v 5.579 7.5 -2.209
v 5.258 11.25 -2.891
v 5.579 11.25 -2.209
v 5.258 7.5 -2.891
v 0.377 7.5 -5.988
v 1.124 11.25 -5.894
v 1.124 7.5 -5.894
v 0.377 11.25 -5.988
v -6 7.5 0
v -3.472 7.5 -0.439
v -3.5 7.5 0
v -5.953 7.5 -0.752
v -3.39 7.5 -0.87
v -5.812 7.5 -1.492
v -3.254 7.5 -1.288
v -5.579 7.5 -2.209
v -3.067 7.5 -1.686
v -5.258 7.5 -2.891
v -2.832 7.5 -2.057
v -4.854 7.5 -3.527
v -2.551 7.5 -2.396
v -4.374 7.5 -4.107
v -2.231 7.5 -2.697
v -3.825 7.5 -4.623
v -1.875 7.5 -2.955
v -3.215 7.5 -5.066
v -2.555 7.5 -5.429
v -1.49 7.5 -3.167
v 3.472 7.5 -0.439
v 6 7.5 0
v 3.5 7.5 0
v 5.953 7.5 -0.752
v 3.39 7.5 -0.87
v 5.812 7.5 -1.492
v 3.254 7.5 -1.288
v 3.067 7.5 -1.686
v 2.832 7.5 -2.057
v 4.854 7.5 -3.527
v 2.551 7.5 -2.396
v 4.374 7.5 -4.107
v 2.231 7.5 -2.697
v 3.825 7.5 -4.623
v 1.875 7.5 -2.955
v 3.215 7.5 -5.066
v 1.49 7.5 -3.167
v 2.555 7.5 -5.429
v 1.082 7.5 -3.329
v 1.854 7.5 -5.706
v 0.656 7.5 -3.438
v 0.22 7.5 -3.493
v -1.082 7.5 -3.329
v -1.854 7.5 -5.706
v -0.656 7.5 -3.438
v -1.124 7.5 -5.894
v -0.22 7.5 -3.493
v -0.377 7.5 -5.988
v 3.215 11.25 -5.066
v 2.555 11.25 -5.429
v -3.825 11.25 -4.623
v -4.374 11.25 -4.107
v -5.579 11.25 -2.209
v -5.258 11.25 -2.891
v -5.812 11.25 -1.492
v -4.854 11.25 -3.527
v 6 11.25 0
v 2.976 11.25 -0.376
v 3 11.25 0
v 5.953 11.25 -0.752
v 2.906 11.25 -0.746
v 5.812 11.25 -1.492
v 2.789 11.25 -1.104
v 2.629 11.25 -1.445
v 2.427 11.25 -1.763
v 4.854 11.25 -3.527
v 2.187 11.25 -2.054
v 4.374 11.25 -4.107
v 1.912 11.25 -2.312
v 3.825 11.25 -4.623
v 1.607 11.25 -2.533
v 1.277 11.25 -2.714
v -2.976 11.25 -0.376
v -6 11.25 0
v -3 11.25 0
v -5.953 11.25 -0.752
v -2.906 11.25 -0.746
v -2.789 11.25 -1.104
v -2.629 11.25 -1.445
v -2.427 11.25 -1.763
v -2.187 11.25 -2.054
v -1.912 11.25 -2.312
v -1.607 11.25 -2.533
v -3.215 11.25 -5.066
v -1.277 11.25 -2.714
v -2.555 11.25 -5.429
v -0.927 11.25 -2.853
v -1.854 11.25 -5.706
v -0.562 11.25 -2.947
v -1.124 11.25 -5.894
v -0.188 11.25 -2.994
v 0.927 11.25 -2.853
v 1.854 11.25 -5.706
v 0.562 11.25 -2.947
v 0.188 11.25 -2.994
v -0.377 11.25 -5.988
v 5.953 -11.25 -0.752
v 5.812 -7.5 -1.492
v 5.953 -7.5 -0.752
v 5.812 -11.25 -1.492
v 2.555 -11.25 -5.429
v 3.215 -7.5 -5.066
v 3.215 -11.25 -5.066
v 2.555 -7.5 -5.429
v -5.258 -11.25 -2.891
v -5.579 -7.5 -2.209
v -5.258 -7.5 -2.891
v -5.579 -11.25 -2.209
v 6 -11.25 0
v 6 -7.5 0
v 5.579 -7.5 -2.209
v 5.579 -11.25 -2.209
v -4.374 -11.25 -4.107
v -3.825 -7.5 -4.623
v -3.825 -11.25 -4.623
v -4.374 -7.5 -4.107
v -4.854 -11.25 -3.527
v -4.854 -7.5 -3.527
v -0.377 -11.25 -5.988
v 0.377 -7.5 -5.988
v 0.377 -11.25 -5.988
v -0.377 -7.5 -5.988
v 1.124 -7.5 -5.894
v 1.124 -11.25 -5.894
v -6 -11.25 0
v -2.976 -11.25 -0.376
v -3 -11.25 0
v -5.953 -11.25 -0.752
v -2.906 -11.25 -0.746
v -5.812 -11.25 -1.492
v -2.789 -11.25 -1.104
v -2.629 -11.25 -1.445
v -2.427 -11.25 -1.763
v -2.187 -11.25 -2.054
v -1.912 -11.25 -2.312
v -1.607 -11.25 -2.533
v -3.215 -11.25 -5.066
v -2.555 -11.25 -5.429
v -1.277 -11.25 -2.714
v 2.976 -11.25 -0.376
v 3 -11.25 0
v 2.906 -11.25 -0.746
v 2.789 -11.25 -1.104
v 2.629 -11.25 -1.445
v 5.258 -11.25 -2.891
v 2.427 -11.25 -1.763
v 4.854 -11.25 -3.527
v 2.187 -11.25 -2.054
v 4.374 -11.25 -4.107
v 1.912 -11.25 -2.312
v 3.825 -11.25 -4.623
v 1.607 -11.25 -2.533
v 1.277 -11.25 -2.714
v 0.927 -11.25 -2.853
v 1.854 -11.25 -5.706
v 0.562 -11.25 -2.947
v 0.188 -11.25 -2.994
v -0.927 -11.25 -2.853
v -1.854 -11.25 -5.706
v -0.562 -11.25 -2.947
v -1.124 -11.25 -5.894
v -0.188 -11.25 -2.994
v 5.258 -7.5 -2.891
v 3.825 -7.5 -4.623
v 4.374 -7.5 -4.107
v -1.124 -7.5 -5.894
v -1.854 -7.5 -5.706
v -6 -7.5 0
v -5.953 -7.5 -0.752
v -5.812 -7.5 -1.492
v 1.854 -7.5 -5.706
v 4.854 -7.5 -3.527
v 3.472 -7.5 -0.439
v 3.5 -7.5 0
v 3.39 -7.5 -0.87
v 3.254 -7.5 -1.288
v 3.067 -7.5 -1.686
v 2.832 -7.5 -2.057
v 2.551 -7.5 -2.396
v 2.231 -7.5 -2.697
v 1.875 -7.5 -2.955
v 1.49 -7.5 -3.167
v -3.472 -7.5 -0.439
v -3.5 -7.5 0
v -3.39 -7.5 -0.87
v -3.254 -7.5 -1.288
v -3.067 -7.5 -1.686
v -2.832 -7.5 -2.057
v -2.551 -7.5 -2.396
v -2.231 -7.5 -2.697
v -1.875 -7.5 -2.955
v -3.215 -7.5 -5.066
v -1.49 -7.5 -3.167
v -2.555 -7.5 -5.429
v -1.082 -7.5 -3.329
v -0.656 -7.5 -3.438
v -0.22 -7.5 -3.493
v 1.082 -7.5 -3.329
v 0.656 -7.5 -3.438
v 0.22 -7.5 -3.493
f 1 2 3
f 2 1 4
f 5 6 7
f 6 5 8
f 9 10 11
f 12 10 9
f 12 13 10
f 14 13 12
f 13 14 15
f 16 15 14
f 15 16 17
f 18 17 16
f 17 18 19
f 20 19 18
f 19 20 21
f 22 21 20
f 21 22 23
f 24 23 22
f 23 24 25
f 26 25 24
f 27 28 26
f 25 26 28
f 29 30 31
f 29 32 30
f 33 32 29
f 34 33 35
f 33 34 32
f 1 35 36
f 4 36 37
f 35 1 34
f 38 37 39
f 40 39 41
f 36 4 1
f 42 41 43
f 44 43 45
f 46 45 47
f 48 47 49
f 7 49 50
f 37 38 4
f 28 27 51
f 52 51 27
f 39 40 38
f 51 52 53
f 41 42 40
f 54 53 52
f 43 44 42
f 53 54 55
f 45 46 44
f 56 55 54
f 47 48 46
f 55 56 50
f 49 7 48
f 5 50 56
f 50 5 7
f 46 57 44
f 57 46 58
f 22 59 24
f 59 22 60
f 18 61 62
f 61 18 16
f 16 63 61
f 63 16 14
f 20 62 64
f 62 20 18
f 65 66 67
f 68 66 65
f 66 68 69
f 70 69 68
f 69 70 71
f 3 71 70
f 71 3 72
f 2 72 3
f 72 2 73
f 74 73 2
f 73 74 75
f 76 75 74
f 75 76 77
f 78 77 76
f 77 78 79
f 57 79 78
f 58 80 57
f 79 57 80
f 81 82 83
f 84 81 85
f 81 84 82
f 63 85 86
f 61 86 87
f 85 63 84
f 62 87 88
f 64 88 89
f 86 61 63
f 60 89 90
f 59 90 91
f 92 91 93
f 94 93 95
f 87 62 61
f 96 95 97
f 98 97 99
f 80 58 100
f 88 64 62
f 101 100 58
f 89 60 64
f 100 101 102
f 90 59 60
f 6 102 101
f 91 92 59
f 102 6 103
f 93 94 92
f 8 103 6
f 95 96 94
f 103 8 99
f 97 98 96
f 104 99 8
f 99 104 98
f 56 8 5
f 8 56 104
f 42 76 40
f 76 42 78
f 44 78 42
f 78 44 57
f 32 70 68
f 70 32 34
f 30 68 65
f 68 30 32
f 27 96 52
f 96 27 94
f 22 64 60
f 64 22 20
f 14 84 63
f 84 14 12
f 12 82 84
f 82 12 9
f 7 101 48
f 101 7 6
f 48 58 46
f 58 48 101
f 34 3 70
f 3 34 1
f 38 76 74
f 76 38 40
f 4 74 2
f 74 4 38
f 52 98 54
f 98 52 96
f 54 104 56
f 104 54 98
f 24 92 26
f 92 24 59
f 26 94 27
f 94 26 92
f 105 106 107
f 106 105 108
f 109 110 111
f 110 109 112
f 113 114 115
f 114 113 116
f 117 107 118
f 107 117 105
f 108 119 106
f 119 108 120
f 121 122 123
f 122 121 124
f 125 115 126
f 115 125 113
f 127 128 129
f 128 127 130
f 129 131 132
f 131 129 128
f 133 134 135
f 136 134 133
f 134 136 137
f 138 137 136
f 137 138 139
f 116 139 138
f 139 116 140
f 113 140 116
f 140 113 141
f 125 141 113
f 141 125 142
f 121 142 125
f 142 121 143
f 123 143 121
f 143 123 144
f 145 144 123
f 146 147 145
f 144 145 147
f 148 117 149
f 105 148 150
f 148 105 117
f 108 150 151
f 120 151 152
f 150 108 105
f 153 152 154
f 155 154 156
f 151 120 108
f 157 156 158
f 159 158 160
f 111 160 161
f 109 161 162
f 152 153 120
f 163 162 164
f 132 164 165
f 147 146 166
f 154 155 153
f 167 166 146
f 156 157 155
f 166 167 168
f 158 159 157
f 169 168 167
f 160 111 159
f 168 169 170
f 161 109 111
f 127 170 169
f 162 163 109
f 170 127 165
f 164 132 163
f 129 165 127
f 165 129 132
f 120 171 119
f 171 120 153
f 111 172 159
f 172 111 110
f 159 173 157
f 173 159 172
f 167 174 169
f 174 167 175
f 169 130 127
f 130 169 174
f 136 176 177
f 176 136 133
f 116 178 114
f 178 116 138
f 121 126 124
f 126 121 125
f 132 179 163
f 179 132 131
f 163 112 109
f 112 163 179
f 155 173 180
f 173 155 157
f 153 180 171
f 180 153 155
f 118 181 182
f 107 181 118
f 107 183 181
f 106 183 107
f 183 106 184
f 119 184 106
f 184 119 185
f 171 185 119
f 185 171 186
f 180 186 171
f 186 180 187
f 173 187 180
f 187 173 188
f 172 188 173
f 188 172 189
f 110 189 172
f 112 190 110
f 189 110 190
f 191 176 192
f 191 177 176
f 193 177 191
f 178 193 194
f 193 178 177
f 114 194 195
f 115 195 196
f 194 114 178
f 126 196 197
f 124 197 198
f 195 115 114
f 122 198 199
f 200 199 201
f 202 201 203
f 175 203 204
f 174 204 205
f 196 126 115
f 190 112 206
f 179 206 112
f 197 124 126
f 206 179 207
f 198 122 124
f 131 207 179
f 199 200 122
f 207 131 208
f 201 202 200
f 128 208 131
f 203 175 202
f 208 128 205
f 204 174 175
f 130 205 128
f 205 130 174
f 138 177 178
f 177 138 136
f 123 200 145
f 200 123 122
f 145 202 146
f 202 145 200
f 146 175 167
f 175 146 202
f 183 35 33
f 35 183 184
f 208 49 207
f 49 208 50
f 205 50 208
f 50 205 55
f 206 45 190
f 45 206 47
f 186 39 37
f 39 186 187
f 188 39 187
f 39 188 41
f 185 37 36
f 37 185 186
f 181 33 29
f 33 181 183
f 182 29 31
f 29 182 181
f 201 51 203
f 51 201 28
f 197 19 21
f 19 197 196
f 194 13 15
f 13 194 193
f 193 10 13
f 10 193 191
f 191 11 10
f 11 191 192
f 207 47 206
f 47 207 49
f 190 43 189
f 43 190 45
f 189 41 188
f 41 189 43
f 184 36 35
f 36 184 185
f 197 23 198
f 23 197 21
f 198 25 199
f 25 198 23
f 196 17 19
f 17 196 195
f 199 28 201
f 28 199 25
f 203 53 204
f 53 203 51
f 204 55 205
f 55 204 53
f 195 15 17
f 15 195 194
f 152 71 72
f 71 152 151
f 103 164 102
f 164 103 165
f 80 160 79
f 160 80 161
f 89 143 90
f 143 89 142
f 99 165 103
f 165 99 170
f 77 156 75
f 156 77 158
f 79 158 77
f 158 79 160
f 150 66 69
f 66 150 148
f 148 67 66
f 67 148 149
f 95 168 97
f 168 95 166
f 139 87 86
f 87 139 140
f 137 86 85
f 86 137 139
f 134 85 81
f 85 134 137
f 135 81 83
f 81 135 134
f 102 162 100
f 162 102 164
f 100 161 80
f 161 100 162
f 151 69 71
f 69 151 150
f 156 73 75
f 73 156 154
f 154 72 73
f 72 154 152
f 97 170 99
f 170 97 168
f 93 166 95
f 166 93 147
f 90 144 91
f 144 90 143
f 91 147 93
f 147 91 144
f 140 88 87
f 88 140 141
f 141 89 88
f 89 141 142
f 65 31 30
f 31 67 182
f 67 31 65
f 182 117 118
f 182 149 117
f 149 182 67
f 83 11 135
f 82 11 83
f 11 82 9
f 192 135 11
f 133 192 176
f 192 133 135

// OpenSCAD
$fn = 50;


difference() {
	union() {
		translate(v = [0, 11.2500000000, 0.0000000000]) {
			rotate(a = [90, 0, 0]) {
				cylinder(h = 3.7500000000, r = 6.0000000000);
			}
		}
		translate(v = [0, -7.5000000000, 0.0000000000]) {
			rotate(a = [90, 0, 0]) {
				cylinder(h = 3.7500000000, r = 6.0000000000);
			}
		}
		translate(v = [0, 11.2500000000, 0.0000000000]) {
			rotate(a = [90, 0, 0]) {
				cylinder(h = 22.5000000000, r = 3.5000000000);
			}
		}
	}
	union() {
		translate(v = [0, 11.2500000000, 0.0000000000]) {
			rotate(a = [90, 0, 0]) {
				cylinder(h = 22.5000000000, r = 3.0000000000);
			}
		}
		translate(v = [-250.0000000000, -250.0000000000, 0]) {
			cube(size = [500, 500, 500]);
		}
		translate(v = [-250.0000000000, -250.0000000000, 0]) {
			cube(size = [500, 500, 500]);
		}
		translate(v = [-250.0000000000, -250.0000000000, 0]) {
			cube(size = [500, 500, 500]);
		}
	}
}
